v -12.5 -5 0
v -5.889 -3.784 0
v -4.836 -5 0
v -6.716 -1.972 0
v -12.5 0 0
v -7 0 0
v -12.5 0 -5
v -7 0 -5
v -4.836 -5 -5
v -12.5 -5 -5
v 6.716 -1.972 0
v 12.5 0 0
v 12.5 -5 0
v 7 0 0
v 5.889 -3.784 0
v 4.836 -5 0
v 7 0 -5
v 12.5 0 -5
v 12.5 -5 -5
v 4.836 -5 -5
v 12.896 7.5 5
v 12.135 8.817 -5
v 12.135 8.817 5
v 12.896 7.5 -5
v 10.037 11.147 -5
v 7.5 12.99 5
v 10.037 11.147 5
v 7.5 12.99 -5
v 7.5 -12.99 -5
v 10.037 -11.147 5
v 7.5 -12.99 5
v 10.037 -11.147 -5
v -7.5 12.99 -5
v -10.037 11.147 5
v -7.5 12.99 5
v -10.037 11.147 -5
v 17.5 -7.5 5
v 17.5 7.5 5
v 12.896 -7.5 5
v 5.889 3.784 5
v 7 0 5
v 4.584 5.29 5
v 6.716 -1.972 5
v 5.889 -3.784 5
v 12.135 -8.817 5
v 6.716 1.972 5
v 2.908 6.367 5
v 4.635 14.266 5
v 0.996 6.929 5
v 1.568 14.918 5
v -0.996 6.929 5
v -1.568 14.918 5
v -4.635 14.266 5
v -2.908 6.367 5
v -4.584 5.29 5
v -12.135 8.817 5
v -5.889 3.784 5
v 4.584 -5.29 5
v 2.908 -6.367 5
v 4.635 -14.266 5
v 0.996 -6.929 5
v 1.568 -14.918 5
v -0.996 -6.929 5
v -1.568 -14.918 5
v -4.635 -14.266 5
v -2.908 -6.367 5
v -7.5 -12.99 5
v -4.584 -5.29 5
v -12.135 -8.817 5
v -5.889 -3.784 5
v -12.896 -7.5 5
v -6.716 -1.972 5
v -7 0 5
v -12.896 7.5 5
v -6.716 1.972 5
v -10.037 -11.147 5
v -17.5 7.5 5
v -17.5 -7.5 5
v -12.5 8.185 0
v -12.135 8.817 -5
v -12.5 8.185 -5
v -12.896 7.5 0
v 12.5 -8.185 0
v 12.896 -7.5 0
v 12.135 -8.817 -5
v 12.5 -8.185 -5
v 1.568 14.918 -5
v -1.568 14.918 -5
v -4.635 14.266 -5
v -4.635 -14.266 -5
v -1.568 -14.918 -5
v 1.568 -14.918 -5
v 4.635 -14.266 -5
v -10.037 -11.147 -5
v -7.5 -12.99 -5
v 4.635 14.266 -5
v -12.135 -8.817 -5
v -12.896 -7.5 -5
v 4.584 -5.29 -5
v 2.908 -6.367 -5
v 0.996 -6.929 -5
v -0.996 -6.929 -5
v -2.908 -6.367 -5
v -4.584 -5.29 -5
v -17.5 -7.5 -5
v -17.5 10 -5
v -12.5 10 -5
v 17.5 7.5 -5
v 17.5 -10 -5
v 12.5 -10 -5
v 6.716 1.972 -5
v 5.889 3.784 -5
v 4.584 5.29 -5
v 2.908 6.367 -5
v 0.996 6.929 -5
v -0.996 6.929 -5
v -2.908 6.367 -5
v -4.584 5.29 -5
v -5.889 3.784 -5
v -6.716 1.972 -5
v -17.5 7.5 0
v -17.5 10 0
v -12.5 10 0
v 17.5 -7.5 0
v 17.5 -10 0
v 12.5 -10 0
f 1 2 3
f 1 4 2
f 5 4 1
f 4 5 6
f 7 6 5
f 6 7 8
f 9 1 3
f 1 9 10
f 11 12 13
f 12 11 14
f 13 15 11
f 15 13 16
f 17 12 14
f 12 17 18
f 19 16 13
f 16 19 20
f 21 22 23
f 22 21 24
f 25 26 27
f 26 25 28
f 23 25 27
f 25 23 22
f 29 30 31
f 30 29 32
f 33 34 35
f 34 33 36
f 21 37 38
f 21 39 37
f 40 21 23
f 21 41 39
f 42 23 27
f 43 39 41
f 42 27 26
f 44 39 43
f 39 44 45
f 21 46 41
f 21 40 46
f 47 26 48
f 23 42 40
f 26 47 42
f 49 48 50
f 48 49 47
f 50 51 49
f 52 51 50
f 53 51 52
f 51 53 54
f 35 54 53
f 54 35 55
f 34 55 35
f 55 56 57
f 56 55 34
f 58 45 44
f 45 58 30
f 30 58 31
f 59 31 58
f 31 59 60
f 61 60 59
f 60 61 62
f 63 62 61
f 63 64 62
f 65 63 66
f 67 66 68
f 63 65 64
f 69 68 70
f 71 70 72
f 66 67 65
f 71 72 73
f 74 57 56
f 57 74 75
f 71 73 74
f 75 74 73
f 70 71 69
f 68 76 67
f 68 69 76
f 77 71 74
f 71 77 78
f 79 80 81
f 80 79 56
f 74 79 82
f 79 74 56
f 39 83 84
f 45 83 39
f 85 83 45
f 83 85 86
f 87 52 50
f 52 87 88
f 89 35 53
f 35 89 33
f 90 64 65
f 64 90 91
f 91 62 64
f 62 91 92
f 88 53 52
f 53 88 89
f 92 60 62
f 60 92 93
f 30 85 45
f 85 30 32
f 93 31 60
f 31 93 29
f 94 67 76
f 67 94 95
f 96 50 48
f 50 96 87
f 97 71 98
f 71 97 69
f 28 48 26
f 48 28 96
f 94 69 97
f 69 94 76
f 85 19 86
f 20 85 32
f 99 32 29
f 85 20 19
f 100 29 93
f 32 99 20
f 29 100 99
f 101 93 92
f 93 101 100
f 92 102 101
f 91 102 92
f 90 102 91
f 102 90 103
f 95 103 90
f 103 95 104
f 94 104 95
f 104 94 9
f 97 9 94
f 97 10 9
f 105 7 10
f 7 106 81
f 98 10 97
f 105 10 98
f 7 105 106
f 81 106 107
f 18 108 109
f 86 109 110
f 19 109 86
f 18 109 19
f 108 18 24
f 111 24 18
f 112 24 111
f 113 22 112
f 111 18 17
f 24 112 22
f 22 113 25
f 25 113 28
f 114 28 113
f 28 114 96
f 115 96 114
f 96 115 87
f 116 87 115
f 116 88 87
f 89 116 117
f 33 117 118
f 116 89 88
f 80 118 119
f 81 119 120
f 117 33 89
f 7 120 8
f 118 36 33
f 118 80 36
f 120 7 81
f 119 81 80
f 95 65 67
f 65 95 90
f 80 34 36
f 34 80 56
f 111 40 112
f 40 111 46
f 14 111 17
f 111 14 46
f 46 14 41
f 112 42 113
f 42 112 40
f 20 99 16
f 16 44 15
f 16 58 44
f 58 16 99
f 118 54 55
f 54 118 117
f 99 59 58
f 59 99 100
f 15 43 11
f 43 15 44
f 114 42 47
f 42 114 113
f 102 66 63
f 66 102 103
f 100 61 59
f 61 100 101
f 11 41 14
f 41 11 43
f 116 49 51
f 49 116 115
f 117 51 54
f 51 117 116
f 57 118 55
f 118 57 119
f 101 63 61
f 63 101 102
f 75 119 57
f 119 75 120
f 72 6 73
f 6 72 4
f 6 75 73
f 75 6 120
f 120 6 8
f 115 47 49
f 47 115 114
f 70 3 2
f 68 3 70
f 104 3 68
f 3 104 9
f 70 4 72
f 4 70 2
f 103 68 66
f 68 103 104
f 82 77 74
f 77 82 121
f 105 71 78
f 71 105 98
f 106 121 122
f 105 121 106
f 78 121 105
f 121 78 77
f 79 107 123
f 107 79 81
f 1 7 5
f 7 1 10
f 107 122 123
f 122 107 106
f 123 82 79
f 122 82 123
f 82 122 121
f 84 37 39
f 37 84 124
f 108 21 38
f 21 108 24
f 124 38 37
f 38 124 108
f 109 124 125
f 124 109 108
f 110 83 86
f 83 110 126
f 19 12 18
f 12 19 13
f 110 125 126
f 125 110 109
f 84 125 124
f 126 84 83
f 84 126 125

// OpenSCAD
// Parameters for the central body
module central_body() {
    difference() {
        // Main cylindrical body
        cylinder(h = 10, r = 15, center = true);
        
        // Central hole
        translate([0, 0, -5])
            cylinder(h = 20, r = 7, center = true);
        
        // Rectangular cutouts on opposite sides
        translate([-7.5, -2.5, -5])
            cube([15, 5, 10], center = true);
        translate([7.5, -2.5, -5])
            cube([15, 5, 10], center = true);
        
        // Flat protruding surfaces with rectangular cutouts
        translate([-15, -2.5, -5])
            difference() {
                cube([5, 5, 10], center = true);
                translate([-2.5, 0, -2.5])
                    cube([2.5, 5, 5], center = true); // Rectangular cutout
            }
        translate([15, -2.5, -5])
            difference() {
                cube([5, 5, 10], center = true);
                translate([2.5, 0, -2.5])
                    cube([2.5, 5, 5], center = true); // Rectangular cutout
            }
    }
}

// Parameters for the side arm
module side_arm() {
    union() {
        // L-shaped arm
        cube([15, 5, 10], center = true);
        translate([7.5, 0, -2.5])
            cube([5, 5, 5], center = true); // L-shaped profile
    }
}

// Assembly of the flexible coupling
module flexible_coupling() {
    // Layer 1: Central body
    central_body();
    
    // Layer 2: Side arms (repositioned to align symmetrically and fit into the rectangular cutouts)
    translate([-15, 0, 0])
        rotate([0, 0, 90])
        side_arm();
    translate([15, 0, 0])
        rotate([0, 0, -90])
        side_arm();
}

// Render the model
flexible_coupling();
